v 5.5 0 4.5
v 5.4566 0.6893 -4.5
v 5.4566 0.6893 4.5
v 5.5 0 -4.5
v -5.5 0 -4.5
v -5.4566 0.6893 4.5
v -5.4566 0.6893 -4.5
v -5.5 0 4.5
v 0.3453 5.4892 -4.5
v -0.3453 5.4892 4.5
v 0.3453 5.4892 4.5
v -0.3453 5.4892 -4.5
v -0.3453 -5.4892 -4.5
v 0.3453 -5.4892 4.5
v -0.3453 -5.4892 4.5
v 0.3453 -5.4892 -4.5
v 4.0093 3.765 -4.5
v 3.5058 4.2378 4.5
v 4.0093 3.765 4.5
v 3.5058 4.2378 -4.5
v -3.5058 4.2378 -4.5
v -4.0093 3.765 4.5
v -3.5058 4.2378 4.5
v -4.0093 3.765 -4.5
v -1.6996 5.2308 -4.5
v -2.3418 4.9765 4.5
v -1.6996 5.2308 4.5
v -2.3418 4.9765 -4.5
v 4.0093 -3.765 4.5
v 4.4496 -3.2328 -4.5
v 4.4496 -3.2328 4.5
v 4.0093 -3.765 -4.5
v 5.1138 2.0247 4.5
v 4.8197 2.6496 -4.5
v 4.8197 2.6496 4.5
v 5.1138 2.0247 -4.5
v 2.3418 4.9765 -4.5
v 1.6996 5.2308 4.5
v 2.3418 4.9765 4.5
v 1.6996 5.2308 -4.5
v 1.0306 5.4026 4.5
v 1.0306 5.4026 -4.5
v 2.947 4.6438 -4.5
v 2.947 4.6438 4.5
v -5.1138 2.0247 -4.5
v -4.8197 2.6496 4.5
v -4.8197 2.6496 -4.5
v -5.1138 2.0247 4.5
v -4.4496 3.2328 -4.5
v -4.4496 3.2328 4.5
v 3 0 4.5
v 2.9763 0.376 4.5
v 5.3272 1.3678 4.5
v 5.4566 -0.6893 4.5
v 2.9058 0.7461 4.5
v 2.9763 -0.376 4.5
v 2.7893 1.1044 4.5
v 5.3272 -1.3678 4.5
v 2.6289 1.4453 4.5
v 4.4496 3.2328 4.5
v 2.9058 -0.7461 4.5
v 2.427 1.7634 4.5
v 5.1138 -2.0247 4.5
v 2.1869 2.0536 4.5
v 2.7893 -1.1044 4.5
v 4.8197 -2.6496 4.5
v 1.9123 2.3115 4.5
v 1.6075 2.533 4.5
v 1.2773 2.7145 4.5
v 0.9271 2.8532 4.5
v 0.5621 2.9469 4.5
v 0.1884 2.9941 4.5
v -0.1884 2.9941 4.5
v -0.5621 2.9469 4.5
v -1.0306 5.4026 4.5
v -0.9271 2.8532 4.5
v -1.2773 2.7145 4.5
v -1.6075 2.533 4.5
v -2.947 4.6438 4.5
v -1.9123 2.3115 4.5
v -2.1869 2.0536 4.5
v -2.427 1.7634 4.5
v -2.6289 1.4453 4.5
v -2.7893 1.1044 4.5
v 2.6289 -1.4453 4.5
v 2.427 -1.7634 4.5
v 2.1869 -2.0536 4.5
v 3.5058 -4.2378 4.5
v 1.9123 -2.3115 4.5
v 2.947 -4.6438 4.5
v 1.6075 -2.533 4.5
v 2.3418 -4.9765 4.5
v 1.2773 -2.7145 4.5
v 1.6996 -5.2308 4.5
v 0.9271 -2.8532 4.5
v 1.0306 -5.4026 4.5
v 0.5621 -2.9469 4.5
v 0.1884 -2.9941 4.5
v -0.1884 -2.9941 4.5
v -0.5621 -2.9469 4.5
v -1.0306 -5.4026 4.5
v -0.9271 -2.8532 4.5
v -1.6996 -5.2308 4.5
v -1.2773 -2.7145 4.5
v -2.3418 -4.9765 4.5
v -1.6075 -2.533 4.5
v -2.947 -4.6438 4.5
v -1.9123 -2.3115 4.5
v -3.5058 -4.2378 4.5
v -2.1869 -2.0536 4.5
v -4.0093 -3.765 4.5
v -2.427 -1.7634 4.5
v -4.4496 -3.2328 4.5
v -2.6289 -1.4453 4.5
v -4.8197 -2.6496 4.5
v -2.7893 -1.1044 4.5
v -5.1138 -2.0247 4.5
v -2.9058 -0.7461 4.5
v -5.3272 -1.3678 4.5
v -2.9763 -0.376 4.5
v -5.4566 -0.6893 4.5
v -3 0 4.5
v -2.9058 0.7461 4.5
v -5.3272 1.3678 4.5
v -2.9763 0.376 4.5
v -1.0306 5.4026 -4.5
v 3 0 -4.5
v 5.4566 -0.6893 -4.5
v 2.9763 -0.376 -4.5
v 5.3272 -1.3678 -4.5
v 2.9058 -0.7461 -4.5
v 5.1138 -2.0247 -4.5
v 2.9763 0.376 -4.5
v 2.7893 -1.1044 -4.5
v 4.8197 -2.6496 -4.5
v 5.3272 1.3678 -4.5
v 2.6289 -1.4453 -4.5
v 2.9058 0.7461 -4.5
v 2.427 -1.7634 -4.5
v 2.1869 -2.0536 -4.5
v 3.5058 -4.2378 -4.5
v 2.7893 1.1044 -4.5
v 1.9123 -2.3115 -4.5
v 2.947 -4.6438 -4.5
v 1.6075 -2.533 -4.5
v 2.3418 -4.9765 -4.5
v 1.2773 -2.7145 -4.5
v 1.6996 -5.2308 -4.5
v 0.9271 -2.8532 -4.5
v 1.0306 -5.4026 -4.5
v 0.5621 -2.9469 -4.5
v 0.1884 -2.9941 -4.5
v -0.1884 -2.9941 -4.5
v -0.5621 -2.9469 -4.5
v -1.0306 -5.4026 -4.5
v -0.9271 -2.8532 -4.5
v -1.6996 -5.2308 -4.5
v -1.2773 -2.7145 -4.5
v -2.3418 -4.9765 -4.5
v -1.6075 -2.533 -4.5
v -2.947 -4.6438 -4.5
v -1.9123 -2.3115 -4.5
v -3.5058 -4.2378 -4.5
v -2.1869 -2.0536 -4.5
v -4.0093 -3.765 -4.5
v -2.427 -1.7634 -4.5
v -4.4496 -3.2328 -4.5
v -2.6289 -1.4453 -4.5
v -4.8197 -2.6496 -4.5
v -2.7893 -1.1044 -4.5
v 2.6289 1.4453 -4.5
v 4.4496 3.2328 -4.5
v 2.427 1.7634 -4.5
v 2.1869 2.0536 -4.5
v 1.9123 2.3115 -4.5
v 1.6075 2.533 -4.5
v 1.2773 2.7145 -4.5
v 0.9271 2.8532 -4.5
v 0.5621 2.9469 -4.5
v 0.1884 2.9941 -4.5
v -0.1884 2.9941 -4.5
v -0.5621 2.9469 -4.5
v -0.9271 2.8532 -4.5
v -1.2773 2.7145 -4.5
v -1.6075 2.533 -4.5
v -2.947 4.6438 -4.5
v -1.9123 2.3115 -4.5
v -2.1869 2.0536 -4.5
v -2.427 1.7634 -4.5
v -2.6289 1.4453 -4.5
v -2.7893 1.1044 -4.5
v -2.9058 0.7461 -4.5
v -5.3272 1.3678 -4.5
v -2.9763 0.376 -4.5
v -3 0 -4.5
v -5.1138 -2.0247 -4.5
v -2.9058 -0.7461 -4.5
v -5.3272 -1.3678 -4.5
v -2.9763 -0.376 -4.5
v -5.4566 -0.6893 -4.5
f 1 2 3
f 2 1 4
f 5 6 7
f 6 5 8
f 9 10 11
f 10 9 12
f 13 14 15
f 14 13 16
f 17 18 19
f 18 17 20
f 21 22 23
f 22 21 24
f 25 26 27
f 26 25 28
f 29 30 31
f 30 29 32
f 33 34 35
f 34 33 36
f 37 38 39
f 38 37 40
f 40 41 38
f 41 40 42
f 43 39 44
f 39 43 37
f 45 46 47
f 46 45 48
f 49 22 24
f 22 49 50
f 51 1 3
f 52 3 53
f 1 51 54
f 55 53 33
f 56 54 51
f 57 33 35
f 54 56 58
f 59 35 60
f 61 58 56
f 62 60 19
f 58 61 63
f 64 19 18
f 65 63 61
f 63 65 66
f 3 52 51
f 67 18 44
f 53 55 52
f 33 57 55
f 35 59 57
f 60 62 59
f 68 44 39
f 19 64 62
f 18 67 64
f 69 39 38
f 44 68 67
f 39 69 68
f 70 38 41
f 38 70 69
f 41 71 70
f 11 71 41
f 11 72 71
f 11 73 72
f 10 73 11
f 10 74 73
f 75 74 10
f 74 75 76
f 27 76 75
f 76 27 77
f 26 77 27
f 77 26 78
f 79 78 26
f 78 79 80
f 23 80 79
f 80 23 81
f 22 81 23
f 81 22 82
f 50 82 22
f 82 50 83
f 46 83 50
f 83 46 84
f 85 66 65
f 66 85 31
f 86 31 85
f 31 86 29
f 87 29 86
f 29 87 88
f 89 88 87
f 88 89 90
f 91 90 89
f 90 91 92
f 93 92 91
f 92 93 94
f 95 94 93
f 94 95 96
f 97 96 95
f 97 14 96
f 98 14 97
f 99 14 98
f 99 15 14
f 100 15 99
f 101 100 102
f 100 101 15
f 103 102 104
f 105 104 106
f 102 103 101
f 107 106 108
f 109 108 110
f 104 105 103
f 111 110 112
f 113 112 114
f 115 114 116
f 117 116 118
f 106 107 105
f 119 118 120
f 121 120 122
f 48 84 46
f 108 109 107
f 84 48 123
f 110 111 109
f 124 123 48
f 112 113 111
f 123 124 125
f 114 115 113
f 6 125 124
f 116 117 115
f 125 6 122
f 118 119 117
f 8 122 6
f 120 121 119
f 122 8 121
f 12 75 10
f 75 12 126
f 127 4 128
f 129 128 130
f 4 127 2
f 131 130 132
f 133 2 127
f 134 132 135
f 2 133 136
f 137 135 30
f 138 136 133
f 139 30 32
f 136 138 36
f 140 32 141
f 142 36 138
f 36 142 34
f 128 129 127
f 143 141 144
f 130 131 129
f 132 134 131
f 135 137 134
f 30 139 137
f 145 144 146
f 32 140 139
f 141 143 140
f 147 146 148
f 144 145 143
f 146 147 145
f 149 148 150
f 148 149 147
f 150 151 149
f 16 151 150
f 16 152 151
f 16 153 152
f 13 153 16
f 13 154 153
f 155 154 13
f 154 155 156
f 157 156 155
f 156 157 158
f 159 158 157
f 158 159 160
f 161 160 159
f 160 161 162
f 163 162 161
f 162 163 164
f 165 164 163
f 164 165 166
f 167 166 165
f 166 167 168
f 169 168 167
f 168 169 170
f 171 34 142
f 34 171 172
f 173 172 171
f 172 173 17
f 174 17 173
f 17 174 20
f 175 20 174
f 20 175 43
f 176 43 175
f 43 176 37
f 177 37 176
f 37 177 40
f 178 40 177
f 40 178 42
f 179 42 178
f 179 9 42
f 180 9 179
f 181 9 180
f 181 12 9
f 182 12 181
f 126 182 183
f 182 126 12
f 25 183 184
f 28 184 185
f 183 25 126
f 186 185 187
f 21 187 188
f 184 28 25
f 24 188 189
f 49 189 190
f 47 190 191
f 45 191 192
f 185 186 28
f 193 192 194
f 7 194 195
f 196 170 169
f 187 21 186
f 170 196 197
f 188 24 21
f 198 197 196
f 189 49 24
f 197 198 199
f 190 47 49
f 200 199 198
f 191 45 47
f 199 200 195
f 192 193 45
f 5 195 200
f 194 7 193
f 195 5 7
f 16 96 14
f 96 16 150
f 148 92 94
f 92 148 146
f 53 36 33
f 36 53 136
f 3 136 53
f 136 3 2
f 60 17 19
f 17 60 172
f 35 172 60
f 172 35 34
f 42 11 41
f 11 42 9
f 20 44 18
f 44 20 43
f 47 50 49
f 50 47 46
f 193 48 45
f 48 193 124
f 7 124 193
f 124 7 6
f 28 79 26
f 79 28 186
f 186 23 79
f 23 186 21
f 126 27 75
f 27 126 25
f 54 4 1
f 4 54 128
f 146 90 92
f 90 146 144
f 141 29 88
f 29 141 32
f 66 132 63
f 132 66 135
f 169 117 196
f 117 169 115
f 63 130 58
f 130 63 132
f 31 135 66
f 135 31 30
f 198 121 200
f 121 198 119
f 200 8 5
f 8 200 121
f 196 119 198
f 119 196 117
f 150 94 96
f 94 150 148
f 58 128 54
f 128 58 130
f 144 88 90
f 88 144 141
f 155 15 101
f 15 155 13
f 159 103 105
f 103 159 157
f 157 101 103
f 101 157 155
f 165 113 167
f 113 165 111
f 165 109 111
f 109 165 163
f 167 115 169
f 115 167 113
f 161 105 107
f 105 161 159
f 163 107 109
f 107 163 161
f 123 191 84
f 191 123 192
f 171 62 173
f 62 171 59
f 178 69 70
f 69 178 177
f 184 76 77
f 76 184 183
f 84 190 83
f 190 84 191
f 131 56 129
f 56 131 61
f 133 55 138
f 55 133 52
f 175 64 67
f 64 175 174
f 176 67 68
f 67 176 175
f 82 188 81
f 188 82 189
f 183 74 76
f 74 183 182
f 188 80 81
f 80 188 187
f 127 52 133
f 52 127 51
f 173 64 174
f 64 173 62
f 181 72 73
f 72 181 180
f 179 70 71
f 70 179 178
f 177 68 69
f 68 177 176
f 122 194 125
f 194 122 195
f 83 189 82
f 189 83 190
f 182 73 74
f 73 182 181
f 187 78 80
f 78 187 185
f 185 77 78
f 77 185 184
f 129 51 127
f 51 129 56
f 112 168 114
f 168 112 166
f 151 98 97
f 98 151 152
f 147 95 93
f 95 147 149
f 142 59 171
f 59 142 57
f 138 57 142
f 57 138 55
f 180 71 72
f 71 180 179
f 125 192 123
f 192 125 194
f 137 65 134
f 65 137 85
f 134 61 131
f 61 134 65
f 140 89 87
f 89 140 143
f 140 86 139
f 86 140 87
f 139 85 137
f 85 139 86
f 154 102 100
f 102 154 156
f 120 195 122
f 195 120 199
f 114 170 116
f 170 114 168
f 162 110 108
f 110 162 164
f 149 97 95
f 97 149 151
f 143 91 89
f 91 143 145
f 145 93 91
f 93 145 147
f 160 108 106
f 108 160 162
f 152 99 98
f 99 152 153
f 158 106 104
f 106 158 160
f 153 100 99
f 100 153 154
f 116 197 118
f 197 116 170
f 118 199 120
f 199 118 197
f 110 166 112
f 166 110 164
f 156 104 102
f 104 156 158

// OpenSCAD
$fn = 50;


difference() {
	union() {
		translate(v = [0, 0, -4.5000000000]) {
			cylinder(h = 9, r = 5.5000000000);
		}
	}
	union() {
		translate(v = [0, 0, -100.0000000000]) {
			cylinder(h = 200, r = 3);
		}
	}
}
